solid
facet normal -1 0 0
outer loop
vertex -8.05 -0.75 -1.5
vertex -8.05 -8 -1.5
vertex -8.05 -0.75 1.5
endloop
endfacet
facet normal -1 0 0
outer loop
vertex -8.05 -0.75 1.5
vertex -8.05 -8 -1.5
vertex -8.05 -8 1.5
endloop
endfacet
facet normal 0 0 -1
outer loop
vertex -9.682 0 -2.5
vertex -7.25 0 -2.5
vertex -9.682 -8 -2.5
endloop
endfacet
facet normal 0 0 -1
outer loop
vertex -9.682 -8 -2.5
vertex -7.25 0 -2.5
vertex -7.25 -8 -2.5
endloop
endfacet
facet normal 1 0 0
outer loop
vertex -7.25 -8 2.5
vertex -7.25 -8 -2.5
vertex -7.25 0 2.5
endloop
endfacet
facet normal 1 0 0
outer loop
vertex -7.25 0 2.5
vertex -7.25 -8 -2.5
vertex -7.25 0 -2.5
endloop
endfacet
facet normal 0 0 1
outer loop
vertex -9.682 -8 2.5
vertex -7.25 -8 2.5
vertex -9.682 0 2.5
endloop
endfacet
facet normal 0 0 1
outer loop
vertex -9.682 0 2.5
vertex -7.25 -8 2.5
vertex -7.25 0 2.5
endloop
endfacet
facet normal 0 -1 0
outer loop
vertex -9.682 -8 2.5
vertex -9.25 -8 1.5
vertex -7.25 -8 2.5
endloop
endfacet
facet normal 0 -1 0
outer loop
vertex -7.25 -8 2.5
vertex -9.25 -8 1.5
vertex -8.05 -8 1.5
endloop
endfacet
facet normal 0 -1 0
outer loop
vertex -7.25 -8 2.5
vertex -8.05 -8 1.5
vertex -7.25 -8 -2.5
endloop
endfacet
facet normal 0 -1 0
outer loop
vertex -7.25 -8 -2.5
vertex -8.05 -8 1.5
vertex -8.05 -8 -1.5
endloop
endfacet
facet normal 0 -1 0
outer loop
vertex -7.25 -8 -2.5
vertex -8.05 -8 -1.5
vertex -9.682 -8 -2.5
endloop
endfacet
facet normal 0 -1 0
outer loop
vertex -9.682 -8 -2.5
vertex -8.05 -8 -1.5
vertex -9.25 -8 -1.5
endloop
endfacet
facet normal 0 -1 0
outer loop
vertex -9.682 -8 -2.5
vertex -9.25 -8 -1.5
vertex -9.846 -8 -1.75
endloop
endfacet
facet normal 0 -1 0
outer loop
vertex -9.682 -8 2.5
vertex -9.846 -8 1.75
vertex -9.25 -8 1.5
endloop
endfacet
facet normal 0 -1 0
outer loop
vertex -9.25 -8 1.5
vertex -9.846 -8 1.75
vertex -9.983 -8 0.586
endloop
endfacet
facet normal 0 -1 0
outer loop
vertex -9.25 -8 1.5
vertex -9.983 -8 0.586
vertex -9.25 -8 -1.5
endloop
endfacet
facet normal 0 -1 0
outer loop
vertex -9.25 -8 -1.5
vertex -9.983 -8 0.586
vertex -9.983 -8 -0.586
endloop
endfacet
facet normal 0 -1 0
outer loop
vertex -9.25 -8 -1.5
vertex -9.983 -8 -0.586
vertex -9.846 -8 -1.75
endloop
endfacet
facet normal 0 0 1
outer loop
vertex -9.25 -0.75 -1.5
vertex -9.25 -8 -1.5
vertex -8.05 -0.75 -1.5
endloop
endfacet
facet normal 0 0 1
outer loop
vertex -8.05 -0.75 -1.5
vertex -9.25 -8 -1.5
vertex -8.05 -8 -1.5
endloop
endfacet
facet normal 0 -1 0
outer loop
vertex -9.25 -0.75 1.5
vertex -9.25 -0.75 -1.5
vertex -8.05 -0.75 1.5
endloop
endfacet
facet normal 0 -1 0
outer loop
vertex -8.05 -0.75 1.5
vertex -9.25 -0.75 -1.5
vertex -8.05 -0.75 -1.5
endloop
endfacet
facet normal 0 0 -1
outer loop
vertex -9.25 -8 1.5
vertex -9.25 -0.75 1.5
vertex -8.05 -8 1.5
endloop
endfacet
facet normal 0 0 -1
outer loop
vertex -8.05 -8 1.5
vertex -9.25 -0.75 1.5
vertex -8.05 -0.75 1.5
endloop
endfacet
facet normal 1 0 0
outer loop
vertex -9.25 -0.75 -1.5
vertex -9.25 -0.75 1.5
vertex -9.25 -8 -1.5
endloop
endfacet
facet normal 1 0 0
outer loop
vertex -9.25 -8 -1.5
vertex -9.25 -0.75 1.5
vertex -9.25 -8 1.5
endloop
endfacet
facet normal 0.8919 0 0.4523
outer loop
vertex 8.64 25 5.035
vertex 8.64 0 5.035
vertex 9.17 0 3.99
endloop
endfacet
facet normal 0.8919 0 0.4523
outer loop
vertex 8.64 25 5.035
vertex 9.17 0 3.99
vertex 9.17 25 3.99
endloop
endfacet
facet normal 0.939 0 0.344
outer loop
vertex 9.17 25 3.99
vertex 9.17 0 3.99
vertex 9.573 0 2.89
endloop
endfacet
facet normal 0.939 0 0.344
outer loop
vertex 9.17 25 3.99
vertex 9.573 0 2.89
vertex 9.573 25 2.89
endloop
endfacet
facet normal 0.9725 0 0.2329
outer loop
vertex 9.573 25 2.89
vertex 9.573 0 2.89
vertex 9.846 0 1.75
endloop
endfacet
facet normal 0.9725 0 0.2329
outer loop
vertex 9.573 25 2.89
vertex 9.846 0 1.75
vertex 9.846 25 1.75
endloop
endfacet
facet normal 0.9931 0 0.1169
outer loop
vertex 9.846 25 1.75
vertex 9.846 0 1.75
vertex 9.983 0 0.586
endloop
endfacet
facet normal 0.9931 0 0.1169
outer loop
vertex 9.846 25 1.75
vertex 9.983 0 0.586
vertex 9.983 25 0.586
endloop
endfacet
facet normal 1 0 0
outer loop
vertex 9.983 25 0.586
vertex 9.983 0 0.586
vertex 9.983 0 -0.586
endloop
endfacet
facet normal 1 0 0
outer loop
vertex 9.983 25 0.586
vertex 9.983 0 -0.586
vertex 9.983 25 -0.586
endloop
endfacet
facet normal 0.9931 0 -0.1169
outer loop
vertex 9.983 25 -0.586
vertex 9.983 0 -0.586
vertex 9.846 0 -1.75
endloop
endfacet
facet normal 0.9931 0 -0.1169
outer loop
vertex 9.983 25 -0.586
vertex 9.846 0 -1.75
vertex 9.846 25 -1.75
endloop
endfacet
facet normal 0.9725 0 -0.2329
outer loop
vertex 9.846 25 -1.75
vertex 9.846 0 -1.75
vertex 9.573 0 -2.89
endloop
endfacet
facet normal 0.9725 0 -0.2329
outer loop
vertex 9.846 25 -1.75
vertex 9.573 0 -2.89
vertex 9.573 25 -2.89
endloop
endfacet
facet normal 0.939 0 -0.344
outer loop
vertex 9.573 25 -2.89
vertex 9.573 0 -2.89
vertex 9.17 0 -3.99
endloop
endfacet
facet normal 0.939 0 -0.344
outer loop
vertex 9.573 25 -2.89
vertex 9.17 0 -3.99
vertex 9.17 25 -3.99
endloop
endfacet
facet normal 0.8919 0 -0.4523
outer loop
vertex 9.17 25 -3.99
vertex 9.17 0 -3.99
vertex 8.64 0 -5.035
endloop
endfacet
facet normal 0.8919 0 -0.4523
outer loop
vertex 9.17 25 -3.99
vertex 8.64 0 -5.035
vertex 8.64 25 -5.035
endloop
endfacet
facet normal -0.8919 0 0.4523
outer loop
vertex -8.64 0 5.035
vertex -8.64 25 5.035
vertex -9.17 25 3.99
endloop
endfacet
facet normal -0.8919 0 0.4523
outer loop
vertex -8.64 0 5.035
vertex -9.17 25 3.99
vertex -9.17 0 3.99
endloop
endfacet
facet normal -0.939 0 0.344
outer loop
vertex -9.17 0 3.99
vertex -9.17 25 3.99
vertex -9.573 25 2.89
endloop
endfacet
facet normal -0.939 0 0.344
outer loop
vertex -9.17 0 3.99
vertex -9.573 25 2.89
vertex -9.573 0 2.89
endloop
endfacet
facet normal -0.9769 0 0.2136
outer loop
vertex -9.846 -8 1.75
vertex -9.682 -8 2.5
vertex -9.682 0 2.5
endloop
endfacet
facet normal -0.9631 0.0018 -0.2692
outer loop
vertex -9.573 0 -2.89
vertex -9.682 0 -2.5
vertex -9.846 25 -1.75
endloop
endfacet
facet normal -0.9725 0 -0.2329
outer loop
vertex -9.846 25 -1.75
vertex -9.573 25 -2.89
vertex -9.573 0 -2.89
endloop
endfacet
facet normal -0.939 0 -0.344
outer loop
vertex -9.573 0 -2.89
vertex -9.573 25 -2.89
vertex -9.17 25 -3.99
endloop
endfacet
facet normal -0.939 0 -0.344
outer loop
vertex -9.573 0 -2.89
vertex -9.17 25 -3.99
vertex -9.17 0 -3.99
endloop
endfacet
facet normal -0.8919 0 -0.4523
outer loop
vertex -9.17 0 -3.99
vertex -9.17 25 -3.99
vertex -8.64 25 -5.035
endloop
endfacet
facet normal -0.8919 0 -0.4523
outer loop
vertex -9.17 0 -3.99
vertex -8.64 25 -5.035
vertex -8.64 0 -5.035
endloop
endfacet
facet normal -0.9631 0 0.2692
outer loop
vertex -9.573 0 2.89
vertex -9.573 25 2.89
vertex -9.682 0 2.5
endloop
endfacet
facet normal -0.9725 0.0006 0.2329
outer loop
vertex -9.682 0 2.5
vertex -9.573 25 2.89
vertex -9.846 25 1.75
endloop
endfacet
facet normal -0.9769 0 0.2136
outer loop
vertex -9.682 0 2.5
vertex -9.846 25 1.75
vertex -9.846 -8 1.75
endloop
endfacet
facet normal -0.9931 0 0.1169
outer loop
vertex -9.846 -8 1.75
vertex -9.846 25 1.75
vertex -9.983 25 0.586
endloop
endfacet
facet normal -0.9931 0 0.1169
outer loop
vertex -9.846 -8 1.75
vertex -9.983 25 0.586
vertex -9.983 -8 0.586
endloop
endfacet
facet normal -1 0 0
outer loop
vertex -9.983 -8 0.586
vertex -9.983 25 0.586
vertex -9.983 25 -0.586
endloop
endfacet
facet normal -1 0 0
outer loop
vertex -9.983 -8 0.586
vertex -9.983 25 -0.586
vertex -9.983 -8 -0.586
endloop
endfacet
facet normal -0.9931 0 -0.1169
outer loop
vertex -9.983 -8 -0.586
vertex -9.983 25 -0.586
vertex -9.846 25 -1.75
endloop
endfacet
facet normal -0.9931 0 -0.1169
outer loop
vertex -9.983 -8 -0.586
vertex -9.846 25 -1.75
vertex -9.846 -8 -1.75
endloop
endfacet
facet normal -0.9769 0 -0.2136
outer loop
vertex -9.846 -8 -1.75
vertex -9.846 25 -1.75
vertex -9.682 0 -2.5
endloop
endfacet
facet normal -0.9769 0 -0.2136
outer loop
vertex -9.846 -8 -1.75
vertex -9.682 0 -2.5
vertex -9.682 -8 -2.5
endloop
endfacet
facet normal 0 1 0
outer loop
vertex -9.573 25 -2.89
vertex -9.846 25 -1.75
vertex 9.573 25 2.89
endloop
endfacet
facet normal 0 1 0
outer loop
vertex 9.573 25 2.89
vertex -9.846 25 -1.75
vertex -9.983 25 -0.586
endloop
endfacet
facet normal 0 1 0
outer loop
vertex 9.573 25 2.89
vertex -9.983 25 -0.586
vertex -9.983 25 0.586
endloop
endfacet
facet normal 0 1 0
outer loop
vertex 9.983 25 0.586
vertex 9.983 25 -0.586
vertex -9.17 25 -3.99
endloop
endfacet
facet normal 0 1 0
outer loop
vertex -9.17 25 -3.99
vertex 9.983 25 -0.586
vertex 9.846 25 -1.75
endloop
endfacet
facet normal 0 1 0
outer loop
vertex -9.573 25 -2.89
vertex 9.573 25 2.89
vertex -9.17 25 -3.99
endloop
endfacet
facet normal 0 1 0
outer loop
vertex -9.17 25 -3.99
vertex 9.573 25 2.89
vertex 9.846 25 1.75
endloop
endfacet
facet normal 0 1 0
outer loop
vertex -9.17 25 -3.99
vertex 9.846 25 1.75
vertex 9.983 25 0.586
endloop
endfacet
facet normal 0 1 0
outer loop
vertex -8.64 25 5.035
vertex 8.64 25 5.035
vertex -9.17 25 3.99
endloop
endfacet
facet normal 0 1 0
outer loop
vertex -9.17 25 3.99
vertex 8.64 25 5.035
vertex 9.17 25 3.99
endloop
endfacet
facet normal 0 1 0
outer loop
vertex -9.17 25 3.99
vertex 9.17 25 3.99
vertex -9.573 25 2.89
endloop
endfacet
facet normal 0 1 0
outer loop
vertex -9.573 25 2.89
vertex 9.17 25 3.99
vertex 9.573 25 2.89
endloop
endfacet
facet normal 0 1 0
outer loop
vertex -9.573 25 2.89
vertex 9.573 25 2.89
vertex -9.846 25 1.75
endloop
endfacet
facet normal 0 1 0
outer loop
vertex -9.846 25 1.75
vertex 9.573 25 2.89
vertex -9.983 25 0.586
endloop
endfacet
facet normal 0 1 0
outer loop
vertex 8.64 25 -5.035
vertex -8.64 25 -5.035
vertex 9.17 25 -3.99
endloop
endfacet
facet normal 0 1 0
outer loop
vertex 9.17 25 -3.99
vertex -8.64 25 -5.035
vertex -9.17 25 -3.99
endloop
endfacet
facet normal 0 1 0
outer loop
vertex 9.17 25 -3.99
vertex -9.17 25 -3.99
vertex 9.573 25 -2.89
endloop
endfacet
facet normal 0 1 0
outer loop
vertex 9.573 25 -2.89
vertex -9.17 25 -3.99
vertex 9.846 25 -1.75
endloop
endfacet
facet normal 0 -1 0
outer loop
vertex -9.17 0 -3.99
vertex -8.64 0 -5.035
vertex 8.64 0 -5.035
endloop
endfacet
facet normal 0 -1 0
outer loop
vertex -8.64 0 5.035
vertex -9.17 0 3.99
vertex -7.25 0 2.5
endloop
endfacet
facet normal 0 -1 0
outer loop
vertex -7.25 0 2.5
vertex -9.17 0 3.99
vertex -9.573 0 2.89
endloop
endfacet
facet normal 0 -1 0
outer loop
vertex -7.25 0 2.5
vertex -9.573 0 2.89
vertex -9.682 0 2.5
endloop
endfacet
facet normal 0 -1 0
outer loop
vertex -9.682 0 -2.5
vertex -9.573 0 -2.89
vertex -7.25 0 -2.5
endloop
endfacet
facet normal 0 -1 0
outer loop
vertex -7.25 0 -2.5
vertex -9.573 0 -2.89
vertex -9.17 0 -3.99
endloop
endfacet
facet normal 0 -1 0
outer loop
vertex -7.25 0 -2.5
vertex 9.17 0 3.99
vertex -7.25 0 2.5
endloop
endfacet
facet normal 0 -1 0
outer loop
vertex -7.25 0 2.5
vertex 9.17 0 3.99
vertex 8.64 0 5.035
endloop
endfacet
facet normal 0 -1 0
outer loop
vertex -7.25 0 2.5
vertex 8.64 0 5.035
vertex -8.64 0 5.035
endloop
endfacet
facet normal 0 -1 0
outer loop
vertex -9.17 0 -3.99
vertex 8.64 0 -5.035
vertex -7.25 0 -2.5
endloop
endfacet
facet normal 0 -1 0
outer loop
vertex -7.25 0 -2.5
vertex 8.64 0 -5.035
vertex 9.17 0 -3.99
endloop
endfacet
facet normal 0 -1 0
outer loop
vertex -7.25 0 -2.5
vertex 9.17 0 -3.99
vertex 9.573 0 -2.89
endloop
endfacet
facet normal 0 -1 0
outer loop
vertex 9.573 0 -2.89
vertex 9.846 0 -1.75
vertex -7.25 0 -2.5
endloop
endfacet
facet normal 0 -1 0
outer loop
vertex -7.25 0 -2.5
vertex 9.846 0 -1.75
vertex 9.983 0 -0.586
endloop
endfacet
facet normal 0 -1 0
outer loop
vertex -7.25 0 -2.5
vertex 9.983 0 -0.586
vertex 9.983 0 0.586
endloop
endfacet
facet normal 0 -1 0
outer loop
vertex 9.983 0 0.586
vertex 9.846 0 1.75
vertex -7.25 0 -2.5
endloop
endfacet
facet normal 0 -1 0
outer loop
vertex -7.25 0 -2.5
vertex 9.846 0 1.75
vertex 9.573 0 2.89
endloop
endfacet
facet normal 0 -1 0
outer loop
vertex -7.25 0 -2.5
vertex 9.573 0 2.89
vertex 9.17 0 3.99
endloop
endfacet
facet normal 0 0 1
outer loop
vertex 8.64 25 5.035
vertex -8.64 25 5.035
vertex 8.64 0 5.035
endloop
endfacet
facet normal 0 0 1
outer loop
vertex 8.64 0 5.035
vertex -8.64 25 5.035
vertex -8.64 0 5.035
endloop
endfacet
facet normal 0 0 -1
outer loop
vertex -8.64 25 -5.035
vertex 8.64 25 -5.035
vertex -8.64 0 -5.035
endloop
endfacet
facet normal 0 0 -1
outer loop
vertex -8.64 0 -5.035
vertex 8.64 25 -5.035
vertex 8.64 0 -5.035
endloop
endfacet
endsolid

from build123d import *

# Parameters (mm, degrees)
SKETCH1_R           = 10
BOSS_EXTRUDE1_DEPTH = 25
SKETCH2_W           = 0.8
SKETCH2_H           = 5
BOSS_EXTRUDE2_DEPTH = 8
BOSS_EXTRUDE3_DEPTH = 1.2
CUT_EXTRUDE1_DEPTH  = 25
SKETCH6_W           = 5
SKETCH6_H           = 8
BOSS_EXTRUDE4_DEPTH = 0.8
CUT_EXTRUDE2_REACH  = 29.411


with BuildPart() as part:
    # Sketch1 → Boss-Extrude1 (new body)
    with BuildSketch(Plane(origin=(0, 0, 0), x_dir=(1, 0, 0), z_dir=(0, 1, 0))):
        with Locations(Location((0, 0, 0), (0, 0, 270))):
            Circle(SKETCH1_R)
    extrude(amount=BOSS_EXTRUDE1_DEPTH)

    # Sketch5 → Cut-Extrude1 (cut)
    with BuildSketch(Plane.XZ):
        with BuildLine():
            Line((-8.64, -5.034918073), (8.64, -5.034918073))
            ThreePointArc((8.64, -5.034918073), (0, -10), (-8.64, -5.034918073))
        make_face()
        with BuildLine():
            Line((-8.64, 5.034918073), (8.64, 5.034918073))
            ThreePointArc((8.64, 5.034918073), (0, 10), (-8.64, 5.034918073))
        make_face()
    extrude(amount=-CUT_EXTRUDE1_DEPTH, mode=Mode.SUBTRACT)



with BuildPart() as body_2:
    # Sketch2 → Boss-Extrude2 (new body)
    with BuildSketch(Plane(origin=(0, 0, 0), x_dir=(-1, 0, 0), z_dir=(0, -1, 0))):
        with Locations((7.65, 0)):
            Rectangle(SKETCH2_W, SKETCH2_H)
    extrude(amount=BOSS_EXTRUDE2_DEPTH)

    # Sketch3 → Boss-Extrude3 (add)
    with BuildSketch(Plane.ZY.offset(8.05)):
        Polygon((-2.5, -8), (-2.5, 0), (2.5, 0), (2.5, -8), (1.5, -8), (1.5, -0.75), (-1.5, -0.75), (-1.5, -8), align=None)
    extrude(amount=BOSS_EXTRUDE3_DEPTH)


with BuildPart() as part_1:
    add(part.part)

    add(body_2.part)  # Boss-Extrude4 merges body 2
    # Sketch6 → Boss-Extrude4 (add)
    with BuildSketch(Plane.ZY.offset(9.25)):
        with Locations((0, -4)):
            Rectangle(SKETCH6_W, SKETCH6_H)
    extrude(amount=BOSS_EXTRUDE4_DEPTH)

    # Sketch7 → Cut-Extrude2 (cut, up to next)
    with BuildSketch(Plane(origin=(0, 0, 0), x_dir=(1, 0, 0), z_dir=(0, 1, 0)), mode=Mode.PRIVATE) as cut_extrude2_sk1:
        with BuildLine():
            Line((-9.682458366, 2.5), (-10.05, 2.5))
            Line((-10.05, 2.5), (-10.05, -2.5))
            Line((-10.05, -2.5), (-9.682458366, -2.5))
            ThreePointArc((-9.682458366, -2.5), (-10, 0), (-9.682458366, 2.5))
        make_face()
    cut_extrude2_tool1 = extrude(cut_extrude2_sk1.sketch, amount=-CUT_EXTRUDE2_REACH, mode=Mode.PRIVATE) & part_1.part
    add(cut_extrude2_tool1.solids().sort_by_distance((-9.866229, 0, -2.449865))[0], mode=Mode.SUBTRACT)


solid = part_1.part
